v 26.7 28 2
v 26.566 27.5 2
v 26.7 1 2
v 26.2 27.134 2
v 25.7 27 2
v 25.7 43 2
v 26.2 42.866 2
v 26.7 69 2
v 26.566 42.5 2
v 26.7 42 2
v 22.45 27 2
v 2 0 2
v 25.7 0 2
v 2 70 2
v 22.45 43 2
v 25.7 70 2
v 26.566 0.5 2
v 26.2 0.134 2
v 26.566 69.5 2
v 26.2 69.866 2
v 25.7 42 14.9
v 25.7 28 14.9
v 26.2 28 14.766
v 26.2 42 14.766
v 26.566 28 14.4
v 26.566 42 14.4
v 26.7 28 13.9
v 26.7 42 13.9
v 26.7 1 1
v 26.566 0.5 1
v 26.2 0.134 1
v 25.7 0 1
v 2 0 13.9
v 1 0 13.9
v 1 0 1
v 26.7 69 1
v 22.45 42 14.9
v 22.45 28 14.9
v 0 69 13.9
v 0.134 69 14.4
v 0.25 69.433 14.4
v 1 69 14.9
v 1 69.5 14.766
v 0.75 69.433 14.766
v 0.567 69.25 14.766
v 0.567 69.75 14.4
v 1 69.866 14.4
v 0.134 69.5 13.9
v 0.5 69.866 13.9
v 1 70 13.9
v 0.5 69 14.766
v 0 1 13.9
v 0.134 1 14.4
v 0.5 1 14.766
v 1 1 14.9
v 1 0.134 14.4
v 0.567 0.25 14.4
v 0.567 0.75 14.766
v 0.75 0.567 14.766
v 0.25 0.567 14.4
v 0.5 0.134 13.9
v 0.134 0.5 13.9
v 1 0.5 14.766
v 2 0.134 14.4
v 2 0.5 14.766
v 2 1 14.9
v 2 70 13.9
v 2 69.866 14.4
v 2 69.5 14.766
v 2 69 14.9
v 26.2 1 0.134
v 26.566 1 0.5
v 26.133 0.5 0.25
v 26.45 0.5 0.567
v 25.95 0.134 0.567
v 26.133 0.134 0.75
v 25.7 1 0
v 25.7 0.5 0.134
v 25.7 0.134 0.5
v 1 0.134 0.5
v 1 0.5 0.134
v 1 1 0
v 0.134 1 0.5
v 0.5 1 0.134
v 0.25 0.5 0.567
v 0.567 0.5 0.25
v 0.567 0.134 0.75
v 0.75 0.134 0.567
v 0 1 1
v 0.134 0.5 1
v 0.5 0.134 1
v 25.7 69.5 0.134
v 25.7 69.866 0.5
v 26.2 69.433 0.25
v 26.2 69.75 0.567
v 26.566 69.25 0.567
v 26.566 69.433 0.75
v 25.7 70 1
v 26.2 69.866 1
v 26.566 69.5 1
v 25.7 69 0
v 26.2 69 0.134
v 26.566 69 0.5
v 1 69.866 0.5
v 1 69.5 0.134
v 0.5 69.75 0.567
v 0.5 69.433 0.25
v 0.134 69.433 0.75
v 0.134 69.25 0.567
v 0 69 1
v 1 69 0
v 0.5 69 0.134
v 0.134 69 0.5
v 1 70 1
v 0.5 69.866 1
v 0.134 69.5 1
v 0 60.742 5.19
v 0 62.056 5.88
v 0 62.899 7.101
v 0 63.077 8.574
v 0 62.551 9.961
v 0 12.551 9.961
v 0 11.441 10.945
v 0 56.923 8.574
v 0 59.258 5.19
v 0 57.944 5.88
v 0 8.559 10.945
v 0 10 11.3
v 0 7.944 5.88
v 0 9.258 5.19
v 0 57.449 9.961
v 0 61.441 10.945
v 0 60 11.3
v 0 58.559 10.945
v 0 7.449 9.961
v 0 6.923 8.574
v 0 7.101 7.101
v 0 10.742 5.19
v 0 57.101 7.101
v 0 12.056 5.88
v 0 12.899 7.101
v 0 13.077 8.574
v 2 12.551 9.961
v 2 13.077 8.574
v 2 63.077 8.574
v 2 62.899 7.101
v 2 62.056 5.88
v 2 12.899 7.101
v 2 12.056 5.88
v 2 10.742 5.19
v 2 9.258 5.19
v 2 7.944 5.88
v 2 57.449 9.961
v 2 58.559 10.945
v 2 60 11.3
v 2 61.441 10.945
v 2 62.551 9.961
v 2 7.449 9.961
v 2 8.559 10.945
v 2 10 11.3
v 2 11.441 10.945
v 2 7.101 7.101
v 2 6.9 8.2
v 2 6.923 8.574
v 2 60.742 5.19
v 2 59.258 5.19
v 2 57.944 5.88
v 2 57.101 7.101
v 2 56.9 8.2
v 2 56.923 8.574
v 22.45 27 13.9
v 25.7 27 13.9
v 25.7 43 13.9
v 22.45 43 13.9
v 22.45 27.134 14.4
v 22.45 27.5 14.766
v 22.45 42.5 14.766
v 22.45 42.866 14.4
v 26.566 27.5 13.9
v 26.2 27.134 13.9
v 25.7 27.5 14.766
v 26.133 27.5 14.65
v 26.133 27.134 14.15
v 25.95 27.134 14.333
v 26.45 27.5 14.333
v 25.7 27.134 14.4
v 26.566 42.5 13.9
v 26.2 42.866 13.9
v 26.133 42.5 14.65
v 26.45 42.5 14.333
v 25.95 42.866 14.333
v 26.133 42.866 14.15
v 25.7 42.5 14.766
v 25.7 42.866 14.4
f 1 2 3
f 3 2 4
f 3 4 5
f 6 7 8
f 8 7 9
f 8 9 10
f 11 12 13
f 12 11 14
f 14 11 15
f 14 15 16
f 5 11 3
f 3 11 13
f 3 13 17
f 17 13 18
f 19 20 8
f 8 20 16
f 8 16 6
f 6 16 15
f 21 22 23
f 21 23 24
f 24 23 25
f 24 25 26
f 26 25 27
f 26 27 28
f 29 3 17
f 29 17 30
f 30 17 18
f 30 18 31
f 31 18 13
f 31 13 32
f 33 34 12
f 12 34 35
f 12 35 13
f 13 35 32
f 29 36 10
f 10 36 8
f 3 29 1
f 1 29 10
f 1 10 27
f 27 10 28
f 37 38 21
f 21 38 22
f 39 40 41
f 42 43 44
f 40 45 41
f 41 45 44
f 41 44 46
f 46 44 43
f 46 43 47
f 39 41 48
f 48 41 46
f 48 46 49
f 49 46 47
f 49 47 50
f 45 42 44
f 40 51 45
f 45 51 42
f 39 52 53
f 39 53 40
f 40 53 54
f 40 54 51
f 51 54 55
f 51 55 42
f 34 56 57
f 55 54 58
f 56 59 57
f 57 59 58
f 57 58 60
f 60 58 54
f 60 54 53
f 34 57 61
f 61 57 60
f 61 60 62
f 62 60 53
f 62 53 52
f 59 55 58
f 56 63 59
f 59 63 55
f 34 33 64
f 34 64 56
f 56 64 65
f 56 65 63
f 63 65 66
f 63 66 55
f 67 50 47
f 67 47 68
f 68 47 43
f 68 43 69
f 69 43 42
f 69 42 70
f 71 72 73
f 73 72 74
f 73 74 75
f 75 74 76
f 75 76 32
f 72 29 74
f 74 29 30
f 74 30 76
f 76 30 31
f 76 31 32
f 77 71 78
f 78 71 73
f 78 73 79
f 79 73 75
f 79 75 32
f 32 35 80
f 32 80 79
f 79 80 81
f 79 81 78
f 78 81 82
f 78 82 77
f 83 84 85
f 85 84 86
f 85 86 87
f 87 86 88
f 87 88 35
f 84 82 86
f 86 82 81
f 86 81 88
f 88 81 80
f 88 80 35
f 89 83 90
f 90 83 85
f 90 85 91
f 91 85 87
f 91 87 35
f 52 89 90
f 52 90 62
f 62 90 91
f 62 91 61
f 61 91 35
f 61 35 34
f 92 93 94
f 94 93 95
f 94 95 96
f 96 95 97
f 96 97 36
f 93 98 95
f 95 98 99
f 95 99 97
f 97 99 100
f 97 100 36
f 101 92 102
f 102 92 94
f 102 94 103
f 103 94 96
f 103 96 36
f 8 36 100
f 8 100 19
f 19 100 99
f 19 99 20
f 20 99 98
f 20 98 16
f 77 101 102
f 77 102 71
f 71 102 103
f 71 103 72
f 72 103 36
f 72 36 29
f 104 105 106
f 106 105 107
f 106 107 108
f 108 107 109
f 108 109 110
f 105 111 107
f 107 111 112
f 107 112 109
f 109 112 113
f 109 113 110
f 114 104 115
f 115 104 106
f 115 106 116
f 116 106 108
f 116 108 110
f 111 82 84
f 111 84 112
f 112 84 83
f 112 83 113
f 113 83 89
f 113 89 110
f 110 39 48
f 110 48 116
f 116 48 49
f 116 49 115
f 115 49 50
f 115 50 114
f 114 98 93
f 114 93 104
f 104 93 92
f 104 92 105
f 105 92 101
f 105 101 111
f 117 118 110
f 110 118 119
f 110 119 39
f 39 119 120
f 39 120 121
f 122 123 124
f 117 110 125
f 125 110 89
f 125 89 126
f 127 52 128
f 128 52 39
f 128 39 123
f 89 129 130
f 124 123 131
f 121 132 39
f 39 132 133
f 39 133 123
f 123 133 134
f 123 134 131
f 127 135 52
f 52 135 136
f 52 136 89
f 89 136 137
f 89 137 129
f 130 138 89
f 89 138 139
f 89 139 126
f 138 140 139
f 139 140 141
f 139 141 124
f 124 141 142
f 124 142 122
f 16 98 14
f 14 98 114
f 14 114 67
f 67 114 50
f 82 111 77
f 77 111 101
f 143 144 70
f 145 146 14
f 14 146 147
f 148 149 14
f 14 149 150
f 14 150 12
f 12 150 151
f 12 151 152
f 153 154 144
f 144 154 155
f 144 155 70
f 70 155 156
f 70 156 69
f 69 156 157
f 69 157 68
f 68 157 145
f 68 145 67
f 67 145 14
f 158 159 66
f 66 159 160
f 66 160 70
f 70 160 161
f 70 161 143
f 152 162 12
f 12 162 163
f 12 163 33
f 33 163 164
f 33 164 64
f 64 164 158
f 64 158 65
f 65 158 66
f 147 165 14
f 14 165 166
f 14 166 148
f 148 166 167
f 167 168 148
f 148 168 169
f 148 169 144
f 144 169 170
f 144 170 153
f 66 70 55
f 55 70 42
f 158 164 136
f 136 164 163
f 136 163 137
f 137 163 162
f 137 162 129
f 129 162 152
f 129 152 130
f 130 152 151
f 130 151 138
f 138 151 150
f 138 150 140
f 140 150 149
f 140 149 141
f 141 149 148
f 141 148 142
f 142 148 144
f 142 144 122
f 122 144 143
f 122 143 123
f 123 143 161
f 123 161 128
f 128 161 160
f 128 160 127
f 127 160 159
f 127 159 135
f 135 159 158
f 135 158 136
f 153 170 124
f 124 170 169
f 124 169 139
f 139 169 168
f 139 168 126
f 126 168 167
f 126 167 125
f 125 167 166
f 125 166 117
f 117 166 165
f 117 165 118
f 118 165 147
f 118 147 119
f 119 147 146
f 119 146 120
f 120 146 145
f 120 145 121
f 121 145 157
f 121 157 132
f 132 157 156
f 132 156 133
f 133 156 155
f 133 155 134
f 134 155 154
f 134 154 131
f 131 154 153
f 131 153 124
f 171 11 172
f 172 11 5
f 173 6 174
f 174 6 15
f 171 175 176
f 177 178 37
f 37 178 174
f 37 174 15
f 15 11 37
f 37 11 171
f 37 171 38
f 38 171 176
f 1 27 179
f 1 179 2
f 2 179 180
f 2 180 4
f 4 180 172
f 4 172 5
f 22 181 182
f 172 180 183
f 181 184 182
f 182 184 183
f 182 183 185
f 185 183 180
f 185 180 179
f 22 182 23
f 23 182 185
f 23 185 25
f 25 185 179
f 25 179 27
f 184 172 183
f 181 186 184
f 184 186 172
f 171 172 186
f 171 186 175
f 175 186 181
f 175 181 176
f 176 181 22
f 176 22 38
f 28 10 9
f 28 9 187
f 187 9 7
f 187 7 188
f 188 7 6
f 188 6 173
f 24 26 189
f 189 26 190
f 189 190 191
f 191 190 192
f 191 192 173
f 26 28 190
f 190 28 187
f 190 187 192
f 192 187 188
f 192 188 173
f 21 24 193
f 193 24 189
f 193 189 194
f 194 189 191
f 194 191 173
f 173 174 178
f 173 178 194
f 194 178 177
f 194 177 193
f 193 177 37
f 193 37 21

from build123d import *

# Parameters (mm, degrees)
SKETCH1_W           = 26.7
SKETCH1_H           = 70
BOSS_EXTRUDE1_DEPTH = 2
SKETCH2_W           = 2
SKETCH2_H           = 70
BOSS_EXTRUDE2_DEPTH = 12.9
SKETCH3_R           = 3.1
CUT_EXTRUDE1_DEPTH  = 77.386517135
FILLET1_R           = 1
FILLET2_R           = 1
FILLET3_R           = 1
FILLET6_R           = 1
FILLET7_R           = 1
FILLET8_R           = 1
CUT_EXTRUDE2_REACH  = 77.711
SKETCH5_W           = 12.9
SKETCH5_H           = 27
SKETCH6_W           = 12.9
SKETCH6_H           = 16
BOSS_EXTRUDE3_DEPTH = 2.25
FILLET11_R          = 1
FILLET12_R          = 1


with BuildPart() as part:
    # Sketch1 → Boss-Extrude1 (new body)
    with BuildSketch(Plane.XY):
        with Locations((13.35, 35)):
            Rectangle(SKETCH1_W, SKETCH1_H)
    extrude(amount=BOSS_EXTRUDE1_DEPTH)

    # Sketch2 → Boss-Extrude2 (add)
    with BuildSketch(Plane.XY.offset(2)):
        with Locations((1, 35)):
            Rectangle(SKETCH2_W, SKETCH2_H)
        with Locations((25.7, 35)):
            Rectangle(SKETCH2_W, SKETCH2_H)
    extrude(amount=BOSS_EXTRUDE2_DEPTH)

    # Sketch3 → Cut-Extrude1 (cut, through all)
    with BuildSketch(Plane.ZY):
        with Locations((8.2, 10)):
            Circle(SKETCH3_R)
    cut_extrude1 = extrude(amount=-CUT_EXTRUDE1_DEPTH, mode=Mode.SUBTRACT)

    # Mirror1: Cut-Extrude1 across plane
    add(cut_extrude1.mirror(Plane.ZX.offset(35)), mode=Mode.SUBTRACT)

    # Fillet1
    fillet1_edges = [part.edges().sort_by_distance(p)[0] for p in [
        (13.35, 70, 0),
    ]]
    fillet(fillet1_edges, radius=FILLET1_R)

    # Fillet2
    fillet2_edges = [part.edges().sort_by_distance(p)[0] for p in [
        (0, 34.5, 0),
        (0, 69.707106781, 0.292893219),
        (0, 70, 7.95),
    ]]
    fillet(fillet2_edges, radius=FILLET2_R)

    # Fillet3
    fillet3_edges = [part.edges().sort_by_distance(p)[0] for p in [
        (26.7, 34.5, 0),
        (26.7, 69.707106781, 0.292893219),
        (26.7, 70, 7.95),
    ]]
    fillet(fillet3_edges, radius=FILLET3_R)

    # Fillet6
    fillet6_edges = [part.edges().sort_by_distance(p)[0] for p in [
        (13.35, 0, 0),
        (0.292893219, 0, 0.292893219),
        (26.7, 0, 7.95),
        (0, 0, 7.95),
        (26.407106781, 0, 0.292893219),
    ]]
    fillet(fillet6_edges, radius=FILLET6_R)

    # Fillet7
    fillet7_edges = [part.edges().sort_by_distance(p)[0] for p in [
        (1.5, 70, 14.9),
        (0, 35, 14.9),
        (0.292893219, 69.707106781, 14.9),
        (1.5, 0, 14.9),
        (0.292893219, 0.292893219, 14.9),
    ]]
    fillet(fillet7_edges, radius=FILLET7_R)

    # Fillet8
    fillet8_edges = [part.edges().sort_by_distance(p)[0] for p in [
        (25.2, 0, 14.9),
        (25.2, 70, 14.9),
        (26.407106781, 69.707106781, 14.9),
        (26.7, 35, 14.9),
        (26.407106781, 0.292893219, 14.9),
    ]]
    fillet(fillet8_edges, radius=FILLET8_R)

    # Cut-Extrude2: up to this face of the body (flat: up to its plane)
    cut_extrude2_end = Plane(part.part.faces().sort_by_distance((26.7, 35, 7.394557998))[0])
    # Sketch5 → Cut-Extrude2 (cut, up to the picked face)
    with BuildSketch(Plane.ZY.offset(-24.7), mode=Mode.PRIVATE) as cut_extrude2_sk1:
        with Locations((8.45, 56.5)):
            Rectangle(SKETCH5_W, SKETCH5_H)
    cut_extrude2_tool1 = split(extrude(cut_extrude2_sk1.sketch, amount=-CUT_EXTRUDE2_REACH, mode=Mode.PRIVATE), bisect_by=cut_extrude2_end, keep=Keep.BOTH, mode=Mode.PRIVATE)
    # Sketch5 → Cut-Extrude2 (cut, up to the picked face)
    with BuildSketch(Plane.ZY.offset(-24.7), mode=Mode.PRIVATE) as cut_extrude2_sk2:
        with Locations((8.45, 13.5)):
            Rectangle(SKETCH5_W, SKETCH5_H)
    cut_extrude2_tool2 = split(extrude(cut_extrude2_sk2.sketch, amount=-CUT_EXTRUDE2_REACH, mode=Mode.PRIVATE), bisect_by=cut_extrude2_end, keep=Keep.BOTH, mode=Mode.PRIVATE)
    add(cut_extrude2_tool1.solids().sort_by(Axis((24.7, 56.5, 8.45), (1, 0, 0)))[0], mode=Mode.SUBTRACT)
    add(cut_extrude2_tool2.solids().sort_by(Axis((24.7, 13.5, 8.45), (1, 0, 0)))[0], mode=Mode.SUBTRACT)

    # Sketch6 → Boss-Extrude3 (add)
    with BuildSketch(Plane.ZY.offset(-24.7)):
        with Locations((8.45, 35)):
            Rectangle(SKETCH6_W, SKETCH6_H)
    extrude(amount=BOSS_EXTRUDE3_DEPTH)

    # Fillet11
    fillet11_edges = [part.edges().sort_by_distance(p)[0] for p in [
        (24.075, 27, 14.9),
        (26.407106781, 27, 14.607106781),
        (26.7, 27, 7.95),
    ]]
    fillet(fillet11_edges, radius=FILLET11_R)

    # Fillet12
    fillet12_edges = [part.edges().sort_by_distance(p)[0] for p in [
        (24.075, 43, 14.9),
        (26.407106781, 43, 14.607106781),
        (26.7, 43, 7.95),
    ]]
    fillet(fillet12_edges, radius=FILLET12_R)


solid = part.part
